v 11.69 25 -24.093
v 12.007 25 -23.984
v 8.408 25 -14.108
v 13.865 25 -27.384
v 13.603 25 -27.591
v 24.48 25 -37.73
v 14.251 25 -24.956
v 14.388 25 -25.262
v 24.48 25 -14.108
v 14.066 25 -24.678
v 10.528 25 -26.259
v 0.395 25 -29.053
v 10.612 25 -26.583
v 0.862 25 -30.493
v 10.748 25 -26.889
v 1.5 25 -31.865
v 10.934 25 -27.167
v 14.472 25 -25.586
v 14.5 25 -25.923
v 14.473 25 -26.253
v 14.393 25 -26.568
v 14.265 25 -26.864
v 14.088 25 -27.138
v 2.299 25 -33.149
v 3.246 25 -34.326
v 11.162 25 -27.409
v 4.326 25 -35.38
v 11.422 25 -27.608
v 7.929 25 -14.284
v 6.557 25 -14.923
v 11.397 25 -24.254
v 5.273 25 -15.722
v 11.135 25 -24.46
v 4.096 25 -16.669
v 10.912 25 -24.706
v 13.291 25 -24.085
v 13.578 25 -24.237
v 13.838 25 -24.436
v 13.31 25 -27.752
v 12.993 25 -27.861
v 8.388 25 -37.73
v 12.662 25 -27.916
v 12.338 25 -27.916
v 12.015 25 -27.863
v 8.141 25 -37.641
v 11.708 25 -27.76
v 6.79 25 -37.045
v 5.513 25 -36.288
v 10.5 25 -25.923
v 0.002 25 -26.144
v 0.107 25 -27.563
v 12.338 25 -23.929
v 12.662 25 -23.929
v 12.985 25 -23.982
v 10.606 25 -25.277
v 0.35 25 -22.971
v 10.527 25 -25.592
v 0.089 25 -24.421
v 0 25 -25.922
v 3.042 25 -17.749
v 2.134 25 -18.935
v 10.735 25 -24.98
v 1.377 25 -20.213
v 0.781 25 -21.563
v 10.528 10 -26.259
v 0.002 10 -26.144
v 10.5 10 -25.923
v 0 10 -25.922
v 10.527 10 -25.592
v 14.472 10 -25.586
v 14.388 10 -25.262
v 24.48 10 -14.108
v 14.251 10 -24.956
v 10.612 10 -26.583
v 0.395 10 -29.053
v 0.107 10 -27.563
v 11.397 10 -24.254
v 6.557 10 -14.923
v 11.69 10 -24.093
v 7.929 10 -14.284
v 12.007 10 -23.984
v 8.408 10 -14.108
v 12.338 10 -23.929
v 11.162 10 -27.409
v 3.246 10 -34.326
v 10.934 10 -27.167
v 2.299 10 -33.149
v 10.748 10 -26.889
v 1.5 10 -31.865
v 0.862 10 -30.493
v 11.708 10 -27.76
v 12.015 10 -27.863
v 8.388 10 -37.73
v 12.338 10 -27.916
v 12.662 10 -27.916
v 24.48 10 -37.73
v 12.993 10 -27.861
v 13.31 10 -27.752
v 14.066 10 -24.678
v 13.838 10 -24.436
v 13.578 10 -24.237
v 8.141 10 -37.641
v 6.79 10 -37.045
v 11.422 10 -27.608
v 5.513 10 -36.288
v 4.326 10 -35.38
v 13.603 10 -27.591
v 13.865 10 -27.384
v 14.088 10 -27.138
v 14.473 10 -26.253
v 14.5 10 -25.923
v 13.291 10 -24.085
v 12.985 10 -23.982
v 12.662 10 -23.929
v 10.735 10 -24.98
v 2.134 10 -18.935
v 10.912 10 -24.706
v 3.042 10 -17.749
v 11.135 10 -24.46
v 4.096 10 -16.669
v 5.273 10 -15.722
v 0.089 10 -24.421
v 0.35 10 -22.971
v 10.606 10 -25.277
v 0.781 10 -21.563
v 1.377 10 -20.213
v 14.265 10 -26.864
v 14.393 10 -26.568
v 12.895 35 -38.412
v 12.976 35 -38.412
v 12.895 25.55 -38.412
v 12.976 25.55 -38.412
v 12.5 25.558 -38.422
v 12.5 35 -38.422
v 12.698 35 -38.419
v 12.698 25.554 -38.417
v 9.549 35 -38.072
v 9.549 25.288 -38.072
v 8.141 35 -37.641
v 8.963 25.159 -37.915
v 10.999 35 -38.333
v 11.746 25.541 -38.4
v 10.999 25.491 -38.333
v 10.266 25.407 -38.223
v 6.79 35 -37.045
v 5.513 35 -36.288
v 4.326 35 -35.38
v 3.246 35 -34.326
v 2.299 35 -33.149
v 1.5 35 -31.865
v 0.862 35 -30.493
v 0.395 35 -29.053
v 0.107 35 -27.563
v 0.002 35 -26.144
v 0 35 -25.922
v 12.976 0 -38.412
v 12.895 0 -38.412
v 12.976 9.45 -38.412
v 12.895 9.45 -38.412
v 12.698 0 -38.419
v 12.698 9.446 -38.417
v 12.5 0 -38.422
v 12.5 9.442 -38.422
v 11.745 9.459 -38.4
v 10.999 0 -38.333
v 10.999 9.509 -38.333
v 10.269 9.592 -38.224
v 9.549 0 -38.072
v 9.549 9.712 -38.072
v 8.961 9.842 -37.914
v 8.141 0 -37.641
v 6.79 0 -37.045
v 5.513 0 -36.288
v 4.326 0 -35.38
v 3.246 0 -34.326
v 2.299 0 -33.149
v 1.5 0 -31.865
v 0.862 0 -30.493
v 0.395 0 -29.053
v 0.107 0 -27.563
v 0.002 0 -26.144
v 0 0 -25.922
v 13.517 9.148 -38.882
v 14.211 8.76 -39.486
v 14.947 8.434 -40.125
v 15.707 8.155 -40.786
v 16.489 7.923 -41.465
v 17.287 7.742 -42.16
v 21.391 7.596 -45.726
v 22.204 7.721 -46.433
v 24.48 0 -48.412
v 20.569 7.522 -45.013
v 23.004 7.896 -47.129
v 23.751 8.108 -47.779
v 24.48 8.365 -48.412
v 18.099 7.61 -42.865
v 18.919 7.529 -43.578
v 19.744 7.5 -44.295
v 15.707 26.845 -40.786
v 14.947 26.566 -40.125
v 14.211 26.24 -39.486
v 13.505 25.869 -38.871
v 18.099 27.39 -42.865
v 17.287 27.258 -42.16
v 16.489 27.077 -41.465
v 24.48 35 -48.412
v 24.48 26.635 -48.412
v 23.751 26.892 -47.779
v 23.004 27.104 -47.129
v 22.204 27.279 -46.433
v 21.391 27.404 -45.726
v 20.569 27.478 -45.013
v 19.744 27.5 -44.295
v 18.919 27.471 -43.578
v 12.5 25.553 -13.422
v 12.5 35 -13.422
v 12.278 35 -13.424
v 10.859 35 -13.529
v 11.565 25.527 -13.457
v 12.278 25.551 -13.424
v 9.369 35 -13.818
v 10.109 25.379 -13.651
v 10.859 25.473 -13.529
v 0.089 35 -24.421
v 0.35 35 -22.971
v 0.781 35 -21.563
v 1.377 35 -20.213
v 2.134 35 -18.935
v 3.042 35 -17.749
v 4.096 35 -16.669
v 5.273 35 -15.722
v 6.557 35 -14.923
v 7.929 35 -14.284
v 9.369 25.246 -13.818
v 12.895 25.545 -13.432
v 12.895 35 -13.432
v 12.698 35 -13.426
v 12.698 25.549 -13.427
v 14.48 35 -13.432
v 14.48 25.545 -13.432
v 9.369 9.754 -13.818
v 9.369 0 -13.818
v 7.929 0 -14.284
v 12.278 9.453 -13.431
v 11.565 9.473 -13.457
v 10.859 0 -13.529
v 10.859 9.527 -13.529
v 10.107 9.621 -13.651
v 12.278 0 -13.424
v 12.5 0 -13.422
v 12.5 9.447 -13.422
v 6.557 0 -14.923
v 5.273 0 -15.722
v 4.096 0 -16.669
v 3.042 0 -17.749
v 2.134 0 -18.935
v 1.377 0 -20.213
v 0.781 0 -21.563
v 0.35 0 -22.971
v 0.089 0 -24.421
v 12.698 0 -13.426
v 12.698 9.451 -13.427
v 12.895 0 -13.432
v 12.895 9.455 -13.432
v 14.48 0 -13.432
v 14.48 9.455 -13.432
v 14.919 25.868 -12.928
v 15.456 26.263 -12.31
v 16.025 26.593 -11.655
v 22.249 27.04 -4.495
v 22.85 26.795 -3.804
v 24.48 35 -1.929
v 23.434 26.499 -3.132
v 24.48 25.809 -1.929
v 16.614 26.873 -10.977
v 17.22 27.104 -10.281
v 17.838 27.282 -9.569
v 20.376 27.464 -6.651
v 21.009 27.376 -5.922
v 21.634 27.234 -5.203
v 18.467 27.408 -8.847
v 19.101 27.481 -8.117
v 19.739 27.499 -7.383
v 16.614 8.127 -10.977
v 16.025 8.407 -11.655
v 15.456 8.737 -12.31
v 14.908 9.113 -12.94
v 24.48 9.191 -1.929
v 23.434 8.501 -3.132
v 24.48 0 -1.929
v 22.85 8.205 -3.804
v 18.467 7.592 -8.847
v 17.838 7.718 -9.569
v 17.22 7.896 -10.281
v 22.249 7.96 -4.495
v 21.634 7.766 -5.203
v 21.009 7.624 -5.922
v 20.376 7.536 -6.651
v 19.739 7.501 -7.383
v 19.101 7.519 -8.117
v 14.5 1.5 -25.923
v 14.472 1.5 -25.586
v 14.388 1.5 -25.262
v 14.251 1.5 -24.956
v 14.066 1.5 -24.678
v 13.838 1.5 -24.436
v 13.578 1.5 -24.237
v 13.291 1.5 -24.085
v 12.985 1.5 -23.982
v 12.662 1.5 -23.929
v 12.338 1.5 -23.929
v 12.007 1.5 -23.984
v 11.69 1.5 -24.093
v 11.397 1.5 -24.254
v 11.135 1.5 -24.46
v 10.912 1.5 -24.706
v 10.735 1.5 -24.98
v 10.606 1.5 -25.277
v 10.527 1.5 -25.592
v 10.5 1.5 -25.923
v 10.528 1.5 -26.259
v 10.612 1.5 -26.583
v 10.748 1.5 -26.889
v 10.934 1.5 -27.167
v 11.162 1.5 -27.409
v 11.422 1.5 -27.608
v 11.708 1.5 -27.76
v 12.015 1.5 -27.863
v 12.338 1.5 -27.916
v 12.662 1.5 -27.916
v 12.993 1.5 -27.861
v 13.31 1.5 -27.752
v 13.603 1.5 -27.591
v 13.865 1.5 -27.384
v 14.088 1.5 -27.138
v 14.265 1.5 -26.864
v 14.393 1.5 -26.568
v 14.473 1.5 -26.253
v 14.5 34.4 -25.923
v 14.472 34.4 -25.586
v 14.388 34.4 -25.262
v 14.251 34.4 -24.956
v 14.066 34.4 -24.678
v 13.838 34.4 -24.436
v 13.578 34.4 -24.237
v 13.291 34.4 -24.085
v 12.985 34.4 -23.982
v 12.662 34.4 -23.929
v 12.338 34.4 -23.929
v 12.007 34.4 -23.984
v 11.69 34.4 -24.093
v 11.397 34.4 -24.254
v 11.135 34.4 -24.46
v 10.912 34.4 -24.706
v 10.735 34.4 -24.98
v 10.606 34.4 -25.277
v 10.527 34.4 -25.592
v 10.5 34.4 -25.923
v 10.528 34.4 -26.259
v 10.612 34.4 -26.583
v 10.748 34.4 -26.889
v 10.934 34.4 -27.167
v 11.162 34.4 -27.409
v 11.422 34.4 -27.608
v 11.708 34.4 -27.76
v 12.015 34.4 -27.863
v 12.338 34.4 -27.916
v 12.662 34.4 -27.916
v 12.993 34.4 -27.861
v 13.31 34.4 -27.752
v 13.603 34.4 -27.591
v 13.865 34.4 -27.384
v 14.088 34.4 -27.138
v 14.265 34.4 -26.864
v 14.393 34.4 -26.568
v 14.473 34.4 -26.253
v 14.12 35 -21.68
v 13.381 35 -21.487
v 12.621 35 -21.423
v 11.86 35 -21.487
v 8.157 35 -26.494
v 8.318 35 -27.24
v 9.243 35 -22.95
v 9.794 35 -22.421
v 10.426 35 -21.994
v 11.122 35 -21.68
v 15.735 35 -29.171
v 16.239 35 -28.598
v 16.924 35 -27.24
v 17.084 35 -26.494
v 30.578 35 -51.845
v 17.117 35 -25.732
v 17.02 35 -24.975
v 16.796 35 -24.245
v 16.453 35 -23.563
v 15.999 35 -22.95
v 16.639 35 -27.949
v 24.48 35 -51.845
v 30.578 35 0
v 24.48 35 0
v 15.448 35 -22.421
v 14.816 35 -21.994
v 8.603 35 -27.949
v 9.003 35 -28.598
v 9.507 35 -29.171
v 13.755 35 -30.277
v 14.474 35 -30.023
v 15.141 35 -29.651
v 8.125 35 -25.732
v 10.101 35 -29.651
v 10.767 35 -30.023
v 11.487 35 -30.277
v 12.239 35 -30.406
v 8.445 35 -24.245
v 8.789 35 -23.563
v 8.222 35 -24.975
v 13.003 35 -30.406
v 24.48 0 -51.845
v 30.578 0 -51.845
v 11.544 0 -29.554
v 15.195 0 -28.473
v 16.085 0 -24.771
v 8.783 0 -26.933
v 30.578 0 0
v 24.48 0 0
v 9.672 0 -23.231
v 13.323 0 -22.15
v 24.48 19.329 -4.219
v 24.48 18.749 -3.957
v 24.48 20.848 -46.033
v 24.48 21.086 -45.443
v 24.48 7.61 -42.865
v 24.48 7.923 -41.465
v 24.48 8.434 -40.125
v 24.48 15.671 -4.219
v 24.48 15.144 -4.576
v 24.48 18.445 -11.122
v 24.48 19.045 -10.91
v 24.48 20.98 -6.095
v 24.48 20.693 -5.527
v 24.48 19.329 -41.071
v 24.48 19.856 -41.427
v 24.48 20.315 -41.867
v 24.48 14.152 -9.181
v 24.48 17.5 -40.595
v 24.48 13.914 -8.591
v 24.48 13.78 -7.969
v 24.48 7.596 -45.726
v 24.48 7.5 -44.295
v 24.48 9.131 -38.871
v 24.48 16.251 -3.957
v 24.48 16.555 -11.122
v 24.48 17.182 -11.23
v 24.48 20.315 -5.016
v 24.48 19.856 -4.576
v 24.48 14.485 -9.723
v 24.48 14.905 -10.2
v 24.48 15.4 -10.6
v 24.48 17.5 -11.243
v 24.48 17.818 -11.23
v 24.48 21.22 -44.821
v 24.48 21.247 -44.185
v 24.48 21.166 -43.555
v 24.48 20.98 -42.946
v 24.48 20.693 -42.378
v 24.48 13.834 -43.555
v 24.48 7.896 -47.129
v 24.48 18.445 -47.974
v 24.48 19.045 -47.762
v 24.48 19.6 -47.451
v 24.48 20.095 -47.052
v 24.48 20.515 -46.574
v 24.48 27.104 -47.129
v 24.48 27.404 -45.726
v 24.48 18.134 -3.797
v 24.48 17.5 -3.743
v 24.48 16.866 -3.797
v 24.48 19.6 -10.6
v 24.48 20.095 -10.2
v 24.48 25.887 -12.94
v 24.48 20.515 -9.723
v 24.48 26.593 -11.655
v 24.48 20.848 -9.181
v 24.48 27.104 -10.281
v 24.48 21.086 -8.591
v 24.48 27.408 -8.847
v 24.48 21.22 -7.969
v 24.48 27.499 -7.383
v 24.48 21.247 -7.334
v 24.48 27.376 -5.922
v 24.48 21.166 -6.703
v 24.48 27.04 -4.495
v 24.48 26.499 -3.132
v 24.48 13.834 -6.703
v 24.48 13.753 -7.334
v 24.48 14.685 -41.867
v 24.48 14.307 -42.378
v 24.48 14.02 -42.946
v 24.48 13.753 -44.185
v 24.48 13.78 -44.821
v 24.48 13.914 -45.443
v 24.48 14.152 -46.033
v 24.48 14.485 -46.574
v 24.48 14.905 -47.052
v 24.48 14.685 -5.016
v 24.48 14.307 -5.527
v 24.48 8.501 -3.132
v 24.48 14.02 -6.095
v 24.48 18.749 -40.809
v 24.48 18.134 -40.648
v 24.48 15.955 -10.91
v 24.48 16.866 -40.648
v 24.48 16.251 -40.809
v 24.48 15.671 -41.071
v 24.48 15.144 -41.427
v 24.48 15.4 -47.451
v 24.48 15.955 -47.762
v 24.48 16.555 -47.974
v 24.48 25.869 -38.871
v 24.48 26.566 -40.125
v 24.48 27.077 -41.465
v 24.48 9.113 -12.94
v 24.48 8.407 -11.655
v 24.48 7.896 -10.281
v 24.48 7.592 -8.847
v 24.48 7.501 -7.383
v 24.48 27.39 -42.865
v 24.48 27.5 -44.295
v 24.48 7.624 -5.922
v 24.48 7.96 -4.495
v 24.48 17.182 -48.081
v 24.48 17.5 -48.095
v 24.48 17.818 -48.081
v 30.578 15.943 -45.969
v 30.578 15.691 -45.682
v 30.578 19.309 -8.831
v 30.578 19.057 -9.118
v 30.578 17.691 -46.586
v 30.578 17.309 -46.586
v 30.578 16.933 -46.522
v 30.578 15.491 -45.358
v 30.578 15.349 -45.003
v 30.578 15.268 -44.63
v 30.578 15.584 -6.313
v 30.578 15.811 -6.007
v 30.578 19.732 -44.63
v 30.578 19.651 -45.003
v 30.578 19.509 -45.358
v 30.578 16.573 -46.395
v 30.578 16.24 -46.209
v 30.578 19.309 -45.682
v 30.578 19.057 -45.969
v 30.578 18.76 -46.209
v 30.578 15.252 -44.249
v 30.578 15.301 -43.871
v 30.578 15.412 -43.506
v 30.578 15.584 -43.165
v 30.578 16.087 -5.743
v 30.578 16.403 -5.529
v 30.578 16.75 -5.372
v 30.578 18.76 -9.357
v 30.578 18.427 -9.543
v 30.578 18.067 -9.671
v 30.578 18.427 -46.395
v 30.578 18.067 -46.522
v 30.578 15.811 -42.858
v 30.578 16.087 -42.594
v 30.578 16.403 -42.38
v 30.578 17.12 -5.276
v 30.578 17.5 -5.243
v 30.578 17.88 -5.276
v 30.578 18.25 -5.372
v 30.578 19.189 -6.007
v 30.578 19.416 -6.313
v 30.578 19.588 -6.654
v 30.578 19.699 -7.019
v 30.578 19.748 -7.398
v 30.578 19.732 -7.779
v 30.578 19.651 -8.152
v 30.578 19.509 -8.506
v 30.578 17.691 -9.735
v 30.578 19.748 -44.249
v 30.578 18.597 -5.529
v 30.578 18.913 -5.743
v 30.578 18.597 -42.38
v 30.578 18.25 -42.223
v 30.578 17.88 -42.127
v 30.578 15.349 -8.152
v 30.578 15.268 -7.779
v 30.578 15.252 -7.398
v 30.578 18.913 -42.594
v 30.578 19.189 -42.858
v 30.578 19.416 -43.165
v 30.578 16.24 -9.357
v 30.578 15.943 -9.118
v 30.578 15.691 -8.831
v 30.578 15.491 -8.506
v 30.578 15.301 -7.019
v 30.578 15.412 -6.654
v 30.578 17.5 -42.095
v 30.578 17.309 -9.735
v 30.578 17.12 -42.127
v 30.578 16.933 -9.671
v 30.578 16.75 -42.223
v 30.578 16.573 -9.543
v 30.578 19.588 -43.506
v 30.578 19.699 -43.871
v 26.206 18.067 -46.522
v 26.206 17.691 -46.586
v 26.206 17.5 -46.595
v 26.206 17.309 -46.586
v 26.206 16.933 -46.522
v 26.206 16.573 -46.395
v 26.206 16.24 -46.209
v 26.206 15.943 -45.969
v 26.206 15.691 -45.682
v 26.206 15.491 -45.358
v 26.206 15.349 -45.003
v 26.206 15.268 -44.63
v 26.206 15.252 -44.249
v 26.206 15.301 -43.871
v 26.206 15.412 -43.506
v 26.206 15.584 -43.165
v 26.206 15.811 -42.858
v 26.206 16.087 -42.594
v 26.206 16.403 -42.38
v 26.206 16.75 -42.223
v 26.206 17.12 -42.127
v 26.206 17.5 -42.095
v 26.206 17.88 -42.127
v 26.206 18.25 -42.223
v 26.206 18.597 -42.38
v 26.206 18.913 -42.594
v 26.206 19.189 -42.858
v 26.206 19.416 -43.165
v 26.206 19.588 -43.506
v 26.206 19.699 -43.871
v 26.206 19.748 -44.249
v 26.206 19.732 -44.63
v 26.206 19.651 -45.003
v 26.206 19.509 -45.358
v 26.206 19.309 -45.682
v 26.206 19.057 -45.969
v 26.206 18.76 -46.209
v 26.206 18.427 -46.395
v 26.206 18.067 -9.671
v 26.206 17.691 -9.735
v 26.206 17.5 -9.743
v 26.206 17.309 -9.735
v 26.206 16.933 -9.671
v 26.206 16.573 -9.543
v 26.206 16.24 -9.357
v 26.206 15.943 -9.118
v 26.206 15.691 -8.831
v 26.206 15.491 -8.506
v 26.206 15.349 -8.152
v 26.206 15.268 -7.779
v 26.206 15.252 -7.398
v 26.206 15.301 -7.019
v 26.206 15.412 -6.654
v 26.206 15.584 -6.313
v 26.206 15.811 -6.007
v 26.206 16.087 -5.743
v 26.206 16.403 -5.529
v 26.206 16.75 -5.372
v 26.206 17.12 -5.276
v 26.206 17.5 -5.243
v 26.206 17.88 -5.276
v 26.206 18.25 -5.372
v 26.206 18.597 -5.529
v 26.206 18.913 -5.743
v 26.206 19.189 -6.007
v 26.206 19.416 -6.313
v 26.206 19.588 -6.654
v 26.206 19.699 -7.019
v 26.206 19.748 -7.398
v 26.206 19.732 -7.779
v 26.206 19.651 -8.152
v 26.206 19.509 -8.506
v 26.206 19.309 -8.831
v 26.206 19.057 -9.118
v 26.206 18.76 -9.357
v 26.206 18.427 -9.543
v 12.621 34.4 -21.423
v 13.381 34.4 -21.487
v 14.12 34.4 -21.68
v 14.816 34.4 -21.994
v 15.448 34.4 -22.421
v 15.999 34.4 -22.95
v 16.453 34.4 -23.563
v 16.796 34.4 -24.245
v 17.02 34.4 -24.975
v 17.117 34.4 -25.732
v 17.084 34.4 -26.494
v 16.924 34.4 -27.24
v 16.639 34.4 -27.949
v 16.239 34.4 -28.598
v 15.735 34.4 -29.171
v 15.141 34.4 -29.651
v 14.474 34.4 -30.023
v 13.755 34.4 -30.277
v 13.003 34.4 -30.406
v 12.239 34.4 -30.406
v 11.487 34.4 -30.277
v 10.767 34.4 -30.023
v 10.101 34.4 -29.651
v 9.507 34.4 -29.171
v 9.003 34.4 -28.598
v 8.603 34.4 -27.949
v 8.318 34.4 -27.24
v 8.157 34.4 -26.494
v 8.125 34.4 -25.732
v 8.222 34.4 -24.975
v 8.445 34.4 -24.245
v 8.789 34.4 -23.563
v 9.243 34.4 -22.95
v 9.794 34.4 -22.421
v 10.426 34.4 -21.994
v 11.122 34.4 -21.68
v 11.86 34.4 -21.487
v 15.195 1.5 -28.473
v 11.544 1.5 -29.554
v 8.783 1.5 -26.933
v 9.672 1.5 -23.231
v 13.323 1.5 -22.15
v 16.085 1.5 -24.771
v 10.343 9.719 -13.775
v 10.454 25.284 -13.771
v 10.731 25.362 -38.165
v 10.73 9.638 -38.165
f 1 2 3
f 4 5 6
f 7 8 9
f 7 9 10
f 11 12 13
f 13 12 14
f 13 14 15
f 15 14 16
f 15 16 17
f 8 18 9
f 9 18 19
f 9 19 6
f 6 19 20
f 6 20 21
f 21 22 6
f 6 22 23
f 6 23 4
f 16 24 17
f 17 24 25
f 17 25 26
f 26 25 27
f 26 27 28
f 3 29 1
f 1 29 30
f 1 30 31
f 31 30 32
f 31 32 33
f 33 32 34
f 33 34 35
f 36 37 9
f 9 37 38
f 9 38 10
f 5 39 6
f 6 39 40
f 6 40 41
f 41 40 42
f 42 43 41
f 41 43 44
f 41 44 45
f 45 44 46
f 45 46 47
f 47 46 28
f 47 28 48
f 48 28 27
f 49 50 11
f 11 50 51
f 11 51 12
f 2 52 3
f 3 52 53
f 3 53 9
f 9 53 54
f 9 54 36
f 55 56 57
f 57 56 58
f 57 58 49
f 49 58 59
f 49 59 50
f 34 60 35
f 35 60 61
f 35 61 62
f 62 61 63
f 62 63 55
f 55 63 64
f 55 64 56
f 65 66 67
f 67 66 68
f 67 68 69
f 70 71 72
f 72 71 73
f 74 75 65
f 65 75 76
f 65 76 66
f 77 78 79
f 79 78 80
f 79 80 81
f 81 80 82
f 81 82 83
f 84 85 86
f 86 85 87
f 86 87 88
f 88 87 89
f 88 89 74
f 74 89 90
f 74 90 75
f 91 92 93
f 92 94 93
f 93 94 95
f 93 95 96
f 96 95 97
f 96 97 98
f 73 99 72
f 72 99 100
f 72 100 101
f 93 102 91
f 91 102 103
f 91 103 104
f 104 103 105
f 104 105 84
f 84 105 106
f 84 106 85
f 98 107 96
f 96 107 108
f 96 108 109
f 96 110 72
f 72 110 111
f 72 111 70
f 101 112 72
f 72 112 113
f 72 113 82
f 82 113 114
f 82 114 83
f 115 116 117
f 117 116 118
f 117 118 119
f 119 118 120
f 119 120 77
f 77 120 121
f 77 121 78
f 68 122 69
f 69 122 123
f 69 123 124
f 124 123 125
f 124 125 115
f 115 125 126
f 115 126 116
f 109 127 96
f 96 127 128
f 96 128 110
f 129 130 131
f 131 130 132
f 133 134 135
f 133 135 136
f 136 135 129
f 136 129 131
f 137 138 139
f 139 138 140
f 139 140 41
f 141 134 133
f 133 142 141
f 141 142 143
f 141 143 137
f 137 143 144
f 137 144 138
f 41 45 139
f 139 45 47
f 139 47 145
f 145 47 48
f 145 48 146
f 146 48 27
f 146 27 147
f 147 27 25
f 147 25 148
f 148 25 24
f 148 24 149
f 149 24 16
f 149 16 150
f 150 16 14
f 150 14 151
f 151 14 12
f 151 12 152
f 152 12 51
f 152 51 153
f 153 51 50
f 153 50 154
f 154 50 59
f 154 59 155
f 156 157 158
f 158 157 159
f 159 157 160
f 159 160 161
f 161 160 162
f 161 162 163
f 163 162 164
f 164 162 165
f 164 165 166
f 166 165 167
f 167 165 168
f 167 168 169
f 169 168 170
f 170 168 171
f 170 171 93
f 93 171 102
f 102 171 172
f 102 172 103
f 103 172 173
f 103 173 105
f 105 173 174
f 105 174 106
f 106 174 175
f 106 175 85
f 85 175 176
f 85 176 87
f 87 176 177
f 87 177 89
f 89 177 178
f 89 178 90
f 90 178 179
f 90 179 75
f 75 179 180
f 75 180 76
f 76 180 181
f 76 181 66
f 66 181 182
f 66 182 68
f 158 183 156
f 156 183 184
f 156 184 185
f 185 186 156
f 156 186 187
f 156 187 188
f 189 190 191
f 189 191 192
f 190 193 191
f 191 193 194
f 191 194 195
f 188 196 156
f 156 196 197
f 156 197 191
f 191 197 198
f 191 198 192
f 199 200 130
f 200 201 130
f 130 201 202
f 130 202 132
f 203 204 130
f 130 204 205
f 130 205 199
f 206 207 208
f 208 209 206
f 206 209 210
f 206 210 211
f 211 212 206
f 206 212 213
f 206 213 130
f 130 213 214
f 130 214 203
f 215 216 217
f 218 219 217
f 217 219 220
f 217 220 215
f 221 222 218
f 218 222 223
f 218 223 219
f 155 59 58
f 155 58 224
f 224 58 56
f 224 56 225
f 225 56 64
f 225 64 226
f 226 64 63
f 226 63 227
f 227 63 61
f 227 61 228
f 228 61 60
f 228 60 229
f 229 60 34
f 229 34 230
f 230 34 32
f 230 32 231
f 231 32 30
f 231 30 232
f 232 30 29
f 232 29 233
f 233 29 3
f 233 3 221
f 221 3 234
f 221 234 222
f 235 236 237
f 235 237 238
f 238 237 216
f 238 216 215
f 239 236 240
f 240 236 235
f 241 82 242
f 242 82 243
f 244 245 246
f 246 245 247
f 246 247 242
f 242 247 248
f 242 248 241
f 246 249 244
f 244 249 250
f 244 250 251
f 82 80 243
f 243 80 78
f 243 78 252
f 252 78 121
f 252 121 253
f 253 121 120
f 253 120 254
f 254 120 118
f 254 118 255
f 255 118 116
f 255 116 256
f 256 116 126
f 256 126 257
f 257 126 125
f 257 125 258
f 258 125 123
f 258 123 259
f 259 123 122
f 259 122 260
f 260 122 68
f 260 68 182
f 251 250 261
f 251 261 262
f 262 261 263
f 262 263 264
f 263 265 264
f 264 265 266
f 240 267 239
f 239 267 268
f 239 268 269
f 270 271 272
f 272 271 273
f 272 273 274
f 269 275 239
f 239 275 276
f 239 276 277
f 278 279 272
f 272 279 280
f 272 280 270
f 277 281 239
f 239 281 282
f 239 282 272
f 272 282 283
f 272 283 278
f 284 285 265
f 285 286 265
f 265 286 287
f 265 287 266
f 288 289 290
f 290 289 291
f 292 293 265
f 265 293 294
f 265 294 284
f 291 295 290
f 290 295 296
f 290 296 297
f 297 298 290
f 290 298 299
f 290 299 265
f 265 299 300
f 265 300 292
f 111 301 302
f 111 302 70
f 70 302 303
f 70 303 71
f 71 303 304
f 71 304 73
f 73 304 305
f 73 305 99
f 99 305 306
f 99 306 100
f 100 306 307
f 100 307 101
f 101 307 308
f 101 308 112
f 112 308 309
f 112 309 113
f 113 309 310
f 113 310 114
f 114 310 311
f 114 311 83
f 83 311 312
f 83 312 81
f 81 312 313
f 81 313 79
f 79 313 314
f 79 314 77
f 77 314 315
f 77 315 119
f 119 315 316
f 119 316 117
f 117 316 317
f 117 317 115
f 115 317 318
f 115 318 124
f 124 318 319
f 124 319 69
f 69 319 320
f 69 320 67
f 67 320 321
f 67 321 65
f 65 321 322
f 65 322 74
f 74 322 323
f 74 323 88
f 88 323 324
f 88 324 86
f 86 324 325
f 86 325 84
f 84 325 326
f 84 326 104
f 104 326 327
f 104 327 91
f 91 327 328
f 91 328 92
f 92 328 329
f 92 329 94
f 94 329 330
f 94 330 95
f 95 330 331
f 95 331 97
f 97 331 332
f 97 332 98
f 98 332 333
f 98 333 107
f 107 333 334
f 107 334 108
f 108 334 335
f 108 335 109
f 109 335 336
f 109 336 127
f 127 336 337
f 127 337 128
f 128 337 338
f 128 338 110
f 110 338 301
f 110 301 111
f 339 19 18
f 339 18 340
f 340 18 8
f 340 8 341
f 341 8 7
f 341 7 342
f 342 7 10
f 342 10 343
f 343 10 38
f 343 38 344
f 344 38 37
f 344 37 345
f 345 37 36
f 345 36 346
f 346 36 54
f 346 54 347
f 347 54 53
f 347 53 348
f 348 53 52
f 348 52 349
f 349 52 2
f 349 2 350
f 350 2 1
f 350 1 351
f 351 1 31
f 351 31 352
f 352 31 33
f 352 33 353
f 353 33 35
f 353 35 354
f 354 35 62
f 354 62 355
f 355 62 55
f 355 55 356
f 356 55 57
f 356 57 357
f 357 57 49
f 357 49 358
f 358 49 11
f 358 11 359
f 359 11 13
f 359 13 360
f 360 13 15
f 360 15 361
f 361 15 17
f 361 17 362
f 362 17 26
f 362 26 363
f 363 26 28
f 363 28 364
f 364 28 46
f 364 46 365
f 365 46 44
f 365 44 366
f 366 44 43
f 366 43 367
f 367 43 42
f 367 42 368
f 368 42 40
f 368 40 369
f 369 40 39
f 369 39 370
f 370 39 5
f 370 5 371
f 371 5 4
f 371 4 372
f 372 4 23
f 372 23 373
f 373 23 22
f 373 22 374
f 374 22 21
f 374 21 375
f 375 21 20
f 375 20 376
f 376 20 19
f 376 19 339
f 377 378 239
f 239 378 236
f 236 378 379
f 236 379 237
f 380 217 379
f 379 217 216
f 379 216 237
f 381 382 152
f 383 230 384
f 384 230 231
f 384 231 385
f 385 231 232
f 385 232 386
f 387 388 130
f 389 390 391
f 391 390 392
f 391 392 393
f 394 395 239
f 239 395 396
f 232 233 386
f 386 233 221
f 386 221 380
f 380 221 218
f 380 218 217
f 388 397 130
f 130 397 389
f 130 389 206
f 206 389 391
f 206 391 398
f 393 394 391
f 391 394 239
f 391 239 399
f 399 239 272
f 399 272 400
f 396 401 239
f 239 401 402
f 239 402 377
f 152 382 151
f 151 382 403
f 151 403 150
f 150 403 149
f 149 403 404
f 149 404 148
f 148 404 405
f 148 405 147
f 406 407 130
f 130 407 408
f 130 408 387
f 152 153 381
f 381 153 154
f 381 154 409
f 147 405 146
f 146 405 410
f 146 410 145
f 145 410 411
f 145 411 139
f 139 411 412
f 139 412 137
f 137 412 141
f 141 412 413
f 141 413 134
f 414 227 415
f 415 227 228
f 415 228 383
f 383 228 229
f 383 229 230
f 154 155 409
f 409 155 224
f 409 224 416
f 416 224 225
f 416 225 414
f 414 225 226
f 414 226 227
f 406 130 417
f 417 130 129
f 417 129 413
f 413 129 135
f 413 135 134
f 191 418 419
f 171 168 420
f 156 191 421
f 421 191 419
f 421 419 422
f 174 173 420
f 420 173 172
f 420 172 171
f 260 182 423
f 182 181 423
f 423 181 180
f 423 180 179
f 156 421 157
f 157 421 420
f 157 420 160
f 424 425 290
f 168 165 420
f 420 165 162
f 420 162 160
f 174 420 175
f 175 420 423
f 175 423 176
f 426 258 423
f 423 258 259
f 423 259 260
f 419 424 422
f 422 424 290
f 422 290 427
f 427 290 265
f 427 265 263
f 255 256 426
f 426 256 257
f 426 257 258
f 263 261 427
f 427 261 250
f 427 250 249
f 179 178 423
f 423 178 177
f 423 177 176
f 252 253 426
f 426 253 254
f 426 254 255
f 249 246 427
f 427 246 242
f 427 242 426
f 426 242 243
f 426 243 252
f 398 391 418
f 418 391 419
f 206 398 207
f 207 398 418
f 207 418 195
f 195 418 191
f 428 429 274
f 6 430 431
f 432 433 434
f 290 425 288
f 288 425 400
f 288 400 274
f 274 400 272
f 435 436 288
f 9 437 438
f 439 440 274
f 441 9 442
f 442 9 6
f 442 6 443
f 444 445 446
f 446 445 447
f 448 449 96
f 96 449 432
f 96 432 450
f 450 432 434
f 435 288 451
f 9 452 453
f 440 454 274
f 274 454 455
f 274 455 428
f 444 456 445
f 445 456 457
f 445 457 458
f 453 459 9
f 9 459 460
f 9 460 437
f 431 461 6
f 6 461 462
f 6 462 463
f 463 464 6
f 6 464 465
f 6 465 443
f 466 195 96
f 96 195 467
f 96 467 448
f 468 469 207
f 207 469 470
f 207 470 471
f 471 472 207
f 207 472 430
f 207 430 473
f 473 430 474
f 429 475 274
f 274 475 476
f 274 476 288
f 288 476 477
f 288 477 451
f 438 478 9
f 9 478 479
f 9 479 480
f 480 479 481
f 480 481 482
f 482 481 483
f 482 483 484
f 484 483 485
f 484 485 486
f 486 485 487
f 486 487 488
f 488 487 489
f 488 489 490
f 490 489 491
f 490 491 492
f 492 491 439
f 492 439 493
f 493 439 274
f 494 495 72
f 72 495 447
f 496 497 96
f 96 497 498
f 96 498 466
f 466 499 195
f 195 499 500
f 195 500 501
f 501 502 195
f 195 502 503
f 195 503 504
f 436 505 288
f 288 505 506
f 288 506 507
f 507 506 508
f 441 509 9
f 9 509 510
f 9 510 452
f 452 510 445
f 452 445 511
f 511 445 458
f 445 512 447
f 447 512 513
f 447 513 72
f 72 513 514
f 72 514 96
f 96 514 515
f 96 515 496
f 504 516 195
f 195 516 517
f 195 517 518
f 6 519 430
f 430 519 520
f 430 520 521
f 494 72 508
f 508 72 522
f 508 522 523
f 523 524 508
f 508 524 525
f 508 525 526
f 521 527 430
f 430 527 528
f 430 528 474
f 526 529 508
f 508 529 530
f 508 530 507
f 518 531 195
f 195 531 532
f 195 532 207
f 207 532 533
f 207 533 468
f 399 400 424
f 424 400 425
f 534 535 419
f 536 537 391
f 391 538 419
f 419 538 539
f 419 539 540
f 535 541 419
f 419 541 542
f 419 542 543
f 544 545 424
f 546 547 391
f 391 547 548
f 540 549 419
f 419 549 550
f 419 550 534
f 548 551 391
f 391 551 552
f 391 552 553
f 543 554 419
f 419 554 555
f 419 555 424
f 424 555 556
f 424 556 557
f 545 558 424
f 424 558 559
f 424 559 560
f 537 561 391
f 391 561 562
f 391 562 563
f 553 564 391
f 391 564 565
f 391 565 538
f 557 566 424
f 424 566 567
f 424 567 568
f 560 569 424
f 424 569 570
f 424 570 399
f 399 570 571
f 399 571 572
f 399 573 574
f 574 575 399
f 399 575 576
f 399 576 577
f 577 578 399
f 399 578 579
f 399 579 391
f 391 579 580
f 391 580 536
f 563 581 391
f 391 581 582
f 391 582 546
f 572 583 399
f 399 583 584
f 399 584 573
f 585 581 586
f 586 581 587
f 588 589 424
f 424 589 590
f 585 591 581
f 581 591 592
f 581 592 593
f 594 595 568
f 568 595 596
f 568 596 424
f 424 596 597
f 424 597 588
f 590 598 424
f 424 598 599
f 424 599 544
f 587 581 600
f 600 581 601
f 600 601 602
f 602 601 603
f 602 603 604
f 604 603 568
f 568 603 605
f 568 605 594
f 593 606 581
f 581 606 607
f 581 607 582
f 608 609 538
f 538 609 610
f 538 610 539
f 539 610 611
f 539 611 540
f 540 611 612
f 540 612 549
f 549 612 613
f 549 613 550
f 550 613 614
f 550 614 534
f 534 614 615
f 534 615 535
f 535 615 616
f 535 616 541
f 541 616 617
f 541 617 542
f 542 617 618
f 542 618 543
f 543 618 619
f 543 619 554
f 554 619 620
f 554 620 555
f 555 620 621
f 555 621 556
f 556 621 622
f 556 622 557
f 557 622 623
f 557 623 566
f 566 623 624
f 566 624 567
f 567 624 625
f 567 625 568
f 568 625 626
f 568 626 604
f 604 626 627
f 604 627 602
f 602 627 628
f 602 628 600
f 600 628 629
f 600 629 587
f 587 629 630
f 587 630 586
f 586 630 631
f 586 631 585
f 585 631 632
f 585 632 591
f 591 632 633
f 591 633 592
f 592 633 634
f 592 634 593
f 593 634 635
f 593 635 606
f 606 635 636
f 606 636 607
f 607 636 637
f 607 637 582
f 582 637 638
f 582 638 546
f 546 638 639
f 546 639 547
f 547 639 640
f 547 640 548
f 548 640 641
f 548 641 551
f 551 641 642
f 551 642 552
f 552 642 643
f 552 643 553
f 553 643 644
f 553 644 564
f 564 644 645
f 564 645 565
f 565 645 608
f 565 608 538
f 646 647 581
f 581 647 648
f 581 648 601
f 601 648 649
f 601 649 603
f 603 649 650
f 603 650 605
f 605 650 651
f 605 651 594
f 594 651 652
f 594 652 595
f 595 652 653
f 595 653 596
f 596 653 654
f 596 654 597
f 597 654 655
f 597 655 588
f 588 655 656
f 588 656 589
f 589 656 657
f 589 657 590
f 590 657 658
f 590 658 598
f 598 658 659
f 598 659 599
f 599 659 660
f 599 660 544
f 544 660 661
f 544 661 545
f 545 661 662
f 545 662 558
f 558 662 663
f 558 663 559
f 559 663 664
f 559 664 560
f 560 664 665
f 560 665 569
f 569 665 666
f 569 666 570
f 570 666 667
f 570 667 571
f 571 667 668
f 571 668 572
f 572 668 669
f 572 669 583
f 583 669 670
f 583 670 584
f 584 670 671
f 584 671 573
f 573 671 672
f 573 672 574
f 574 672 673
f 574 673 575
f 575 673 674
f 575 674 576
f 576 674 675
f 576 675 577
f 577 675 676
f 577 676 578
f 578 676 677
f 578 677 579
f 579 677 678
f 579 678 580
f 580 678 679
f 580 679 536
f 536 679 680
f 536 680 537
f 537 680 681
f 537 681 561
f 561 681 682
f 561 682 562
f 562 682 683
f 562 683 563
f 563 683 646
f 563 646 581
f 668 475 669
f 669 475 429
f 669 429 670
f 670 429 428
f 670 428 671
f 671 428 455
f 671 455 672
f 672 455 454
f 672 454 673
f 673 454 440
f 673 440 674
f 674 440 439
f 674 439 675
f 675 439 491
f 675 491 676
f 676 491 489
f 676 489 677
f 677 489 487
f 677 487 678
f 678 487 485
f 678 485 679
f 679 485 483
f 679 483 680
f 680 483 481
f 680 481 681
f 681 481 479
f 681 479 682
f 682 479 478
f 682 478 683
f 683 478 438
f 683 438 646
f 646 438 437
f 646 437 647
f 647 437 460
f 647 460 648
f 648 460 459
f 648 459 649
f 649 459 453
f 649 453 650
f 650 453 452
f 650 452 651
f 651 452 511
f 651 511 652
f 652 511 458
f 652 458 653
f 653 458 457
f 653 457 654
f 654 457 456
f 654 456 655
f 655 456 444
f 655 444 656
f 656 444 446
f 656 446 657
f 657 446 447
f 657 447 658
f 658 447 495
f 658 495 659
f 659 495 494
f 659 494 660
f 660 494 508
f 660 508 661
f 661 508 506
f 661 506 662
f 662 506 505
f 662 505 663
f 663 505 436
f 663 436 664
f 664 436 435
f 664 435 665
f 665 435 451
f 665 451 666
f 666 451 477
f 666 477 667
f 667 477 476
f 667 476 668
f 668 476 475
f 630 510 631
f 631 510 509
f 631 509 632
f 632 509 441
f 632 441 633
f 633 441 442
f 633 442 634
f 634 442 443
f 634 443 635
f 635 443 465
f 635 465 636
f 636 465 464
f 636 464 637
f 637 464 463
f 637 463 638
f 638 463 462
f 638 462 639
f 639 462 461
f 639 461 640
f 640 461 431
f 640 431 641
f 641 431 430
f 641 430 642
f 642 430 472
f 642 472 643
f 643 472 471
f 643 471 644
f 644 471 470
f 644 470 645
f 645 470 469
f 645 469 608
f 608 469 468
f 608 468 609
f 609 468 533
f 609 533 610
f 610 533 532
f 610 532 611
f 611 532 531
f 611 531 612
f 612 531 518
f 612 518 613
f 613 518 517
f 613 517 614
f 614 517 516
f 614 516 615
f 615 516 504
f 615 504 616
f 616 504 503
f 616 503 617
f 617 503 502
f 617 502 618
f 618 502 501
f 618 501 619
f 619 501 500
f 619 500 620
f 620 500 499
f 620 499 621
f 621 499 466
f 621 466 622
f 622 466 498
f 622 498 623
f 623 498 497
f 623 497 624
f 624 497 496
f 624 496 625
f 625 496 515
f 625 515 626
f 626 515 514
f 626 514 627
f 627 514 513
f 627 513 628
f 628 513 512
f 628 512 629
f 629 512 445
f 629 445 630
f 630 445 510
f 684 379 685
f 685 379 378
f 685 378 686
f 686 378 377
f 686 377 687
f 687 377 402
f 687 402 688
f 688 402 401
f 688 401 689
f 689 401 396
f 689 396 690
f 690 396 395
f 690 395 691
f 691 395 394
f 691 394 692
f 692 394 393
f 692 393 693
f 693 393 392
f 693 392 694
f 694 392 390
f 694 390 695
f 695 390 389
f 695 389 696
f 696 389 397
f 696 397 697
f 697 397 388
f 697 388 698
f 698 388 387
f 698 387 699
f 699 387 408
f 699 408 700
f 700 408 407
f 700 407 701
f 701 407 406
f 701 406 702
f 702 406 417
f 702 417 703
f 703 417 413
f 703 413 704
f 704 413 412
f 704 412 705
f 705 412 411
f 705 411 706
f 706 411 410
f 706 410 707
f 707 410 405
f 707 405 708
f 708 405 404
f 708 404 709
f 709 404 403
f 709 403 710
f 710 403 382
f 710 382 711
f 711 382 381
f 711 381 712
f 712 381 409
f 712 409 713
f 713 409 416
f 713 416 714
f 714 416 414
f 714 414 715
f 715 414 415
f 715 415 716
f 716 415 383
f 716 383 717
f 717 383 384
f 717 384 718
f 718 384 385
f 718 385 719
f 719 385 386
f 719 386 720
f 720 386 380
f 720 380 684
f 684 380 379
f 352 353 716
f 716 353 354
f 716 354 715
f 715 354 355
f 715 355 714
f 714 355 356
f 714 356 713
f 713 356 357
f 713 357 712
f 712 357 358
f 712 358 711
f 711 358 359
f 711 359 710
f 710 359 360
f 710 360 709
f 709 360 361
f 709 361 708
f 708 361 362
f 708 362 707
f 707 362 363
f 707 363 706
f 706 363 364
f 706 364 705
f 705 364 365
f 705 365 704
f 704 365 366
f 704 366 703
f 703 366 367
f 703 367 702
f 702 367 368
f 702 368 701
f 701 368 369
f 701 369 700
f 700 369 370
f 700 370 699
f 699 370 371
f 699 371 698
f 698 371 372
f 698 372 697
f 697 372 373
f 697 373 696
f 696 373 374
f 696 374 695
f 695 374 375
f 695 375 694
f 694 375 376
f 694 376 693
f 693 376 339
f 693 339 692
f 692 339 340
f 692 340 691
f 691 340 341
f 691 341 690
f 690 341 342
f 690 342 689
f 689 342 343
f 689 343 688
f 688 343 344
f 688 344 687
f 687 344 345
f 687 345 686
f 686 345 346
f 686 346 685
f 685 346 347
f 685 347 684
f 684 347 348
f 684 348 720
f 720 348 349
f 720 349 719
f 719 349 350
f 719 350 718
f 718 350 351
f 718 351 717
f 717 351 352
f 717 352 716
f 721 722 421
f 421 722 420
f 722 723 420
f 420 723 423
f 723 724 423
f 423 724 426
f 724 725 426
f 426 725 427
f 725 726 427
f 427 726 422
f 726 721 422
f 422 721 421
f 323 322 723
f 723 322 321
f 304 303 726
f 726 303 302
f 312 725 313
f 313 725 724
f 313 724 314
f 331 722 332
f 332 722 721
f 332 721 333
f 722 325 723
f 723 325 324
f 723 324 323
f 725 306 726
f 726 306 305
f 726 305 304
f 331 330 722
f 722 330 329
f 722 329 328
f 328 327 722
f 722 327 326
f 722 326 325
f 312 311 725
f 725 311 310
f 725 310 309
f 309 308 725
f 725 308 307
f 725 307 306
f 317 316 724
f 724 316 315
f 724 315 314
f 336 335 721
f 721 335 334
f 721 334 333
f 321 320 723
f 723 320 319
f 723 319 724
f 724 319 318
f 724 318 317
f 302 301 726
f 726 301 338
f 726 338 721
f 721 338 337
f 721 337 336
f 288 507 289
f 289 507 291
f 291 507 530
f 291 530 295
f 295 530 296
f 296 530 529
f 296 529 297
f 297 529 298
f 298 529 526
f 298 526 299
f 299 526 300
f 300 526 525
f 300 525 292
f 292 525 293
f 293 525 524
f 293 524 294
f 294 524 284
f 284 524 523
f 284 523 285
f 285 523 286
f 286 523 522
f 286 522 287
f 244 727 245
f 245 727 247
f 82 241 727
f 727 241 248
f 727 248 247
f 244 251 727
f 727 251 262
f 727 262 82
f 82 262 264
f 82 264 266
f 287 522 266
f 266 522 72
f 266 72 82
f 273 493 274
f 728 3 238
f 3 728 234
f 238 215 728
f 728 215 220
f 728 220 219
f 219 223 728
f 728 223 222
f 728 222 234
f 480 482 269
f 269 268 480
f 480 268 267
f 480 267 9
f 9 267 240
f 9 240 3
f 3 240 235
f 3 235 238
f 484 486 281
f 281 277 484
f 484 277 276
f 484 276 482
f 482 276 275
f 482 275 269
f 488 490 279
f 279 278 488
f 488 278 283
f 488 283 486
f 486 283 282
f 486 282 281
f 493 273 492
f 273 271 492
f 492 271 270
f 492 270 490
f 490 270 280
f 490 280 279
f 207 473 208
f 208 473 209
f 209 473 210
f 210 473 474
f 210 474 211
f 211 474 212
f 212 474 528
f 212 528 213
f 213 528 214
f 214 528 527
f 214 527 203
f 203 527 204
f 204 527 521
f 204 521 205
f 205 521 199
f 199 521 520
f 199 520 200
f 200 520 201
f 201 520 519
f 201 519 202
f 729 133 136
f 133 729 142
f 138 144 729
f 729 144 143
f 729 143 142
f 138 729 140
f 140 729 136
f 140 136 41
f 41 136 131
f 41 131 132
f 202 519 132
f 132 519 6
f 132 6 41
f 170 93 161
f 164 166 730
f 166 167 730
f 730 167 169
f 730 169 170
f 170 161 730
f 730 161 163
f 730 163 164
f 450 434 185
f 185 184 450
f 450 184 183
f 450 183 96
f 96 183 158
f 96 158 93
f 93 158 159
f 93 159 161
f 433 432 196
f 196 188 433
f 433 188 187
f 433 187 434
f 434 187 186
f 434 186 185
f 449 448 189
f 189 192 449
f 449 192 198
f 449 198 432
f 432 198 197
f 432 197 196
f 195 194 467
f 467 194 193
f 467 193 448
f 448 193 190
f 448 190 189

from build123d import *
from OCP.BRepFilletAPI import BRepFilletAPI_MakeChamfer

# Parameters (mm, degrees)
BOSS_EXTRUDE1_DEPTH     = 35
CUT_EXTRUDE1_DEPTH      = 35
CUT_EXTRUDE1_DEPTH_BACK = 35
SKETCH2_W               = 12.895164656
SKETCH2_H               = 15
SKETCH2_W_2             = 11.584994843
CHAMFER1_SIZE           = 10
CHAMFER1_SIZE2          = 11.503684072
SKETCH3_R               = 2.25
CUT_EXTRUDE2_DEPTH      = 68.172434084
CHAMFER2_SIZE           = 1.5
CHAMFER2_SIZE2          = 1.725552611
SKETCH5_R               = 4.5
CUT_EXTRUDE3_DEPTH      = 0.6
CUT_EXTRUDE4_DEPTH      = 1.5
SKETCH9_R               = 10
CUT_EXTRUDE5_DEPTH      = 35


with BuildPart() as part:
    # Sketch1 → Boss-Extrude1 (new body)
    with BuildSketch(Plane(origin=(0, 0, 0), x_dir=(1, 0, 0), z_dir=(0, 1, 0))):
        with BuildLine():
            Line((30.577978508, 38.412125641), (30.577978508, 51.844552938))
            Line((30.577978508, 51.844552938), (24.480159499, 51.844552938))
            Line((24.480159499, 51.844552938), (24.480159499, 38.412125641))
            Line((24.480159499, 38.412125641), (12.895164656, 38.412125641))
            add(Edge.make_bspline(
                [(12.895164656, 38.412125641), (12.763562009, 38.416259756), (12.632476125, 38.422116418), (12.499839949, 38.422116418)],
                knots=[4, 4, 4, 4, 5, 5, 5, 5], degree=3))
            add(Edge.make_bspline(
                [(12.499839949, 38.422116418), (5.596213106, 38.422116418), (0, 32.825903312), (0, 25.922276469)],
                knots=[5, 5, 5, 5, 6, 6, 6, 6], degree=3))
            add(Edge.make_bspline(
                [(0, 25.922276469), (0, 19.018649626), (5.596213106, 13.42243652), (12.499839949, 13.42243652)],
                knots=[6, 6, 6, 6, 7, 7, 7, 7], degree=3))
            add(Edge.make_bspline(
                [(12.499839949, 13.42243652), (12.632476125, 13.42243652), (12.763562009, 13.428293182), (12.895164656, 13.432427297)],
                knots=[7, 7, 7, 7, 8, 8, 8, 8], degree=3))
            Line((12.895164656, 13.432427297), (24.480159499, 13.432427297))
            Line((24.480159499, 13.432427297), (24.480159499, 0))
            Line((24.480159499, 0), (30.577978508, 0))
            Line((30.577978508, 0), (30.577978508, 13.432427297))
            Line((30.577978508, 13.432427297), (30.577978508, 38.412125641))
        make_face()
        with BuildLine():
            add(Edge.make_bspline(
                [(10.49996202, 25.922620979), (10.49996202, 27.027118591), (11.395342337, 27.922498908), (12.500012204, 27.922498908), (13.604509816, 27.922498908), (14.499890133, 27.027118591), (14.499890133, 25.922620979)],
                knots=[2, 2, 2, 2, 3, 3, 3, 4, 4, 4, 4], degree=3))
            add(Edge.make_bspline(
                [(14.499890133, 25.922620979), (14.499890133, 24.817778857), (13.604509816, 23.92239854), (12.500012204, 23.92239854), (11.395342337, 23.92239854), (10.49996202, 24.817778857), (10.49996202, 25.922620979)],
                knots=[0, 0, 0, 0, 1, 1, 1, 2, 2, 2, 2], degree=3))
        make_face(mode=Mode.SUBTRACT)
    extrude(amount=BOSS_EXTRUDE1_DEPTH)

    # Sketch2 → Cut-Extrude1 (cut, two sides: drawn at the far end of the back side and taken through both)
    with BuildSketch(Plane.XY.offset(-13.432427297).offset(-CUT_EXTRUDE1_DEPTH_BACK)):
        with Locations((6.447582328, 17.5)):
            Rectangle(SKETCH2_W, SKETCH2_H)
        with Locations((18.687662078, 17.5)):
            Rectangle(SKETCH2_W_2, SKETCH2_H)
    extrude(amount=CUT_EXTRUDE1_DEPTH + CUT_EXTRUDE1_DEPTH_BACK, mode=Mode.SUBTRACT)

    # Chamfer1: one chamfer whose edges measure the first distance from different faces: ONE call of the kernel's chamfer builder (chamfer() names one face for all edges)
    chamfer1_edges_1 = [part.edges().sort_by_distance(p)[0] for p in [
        (24.480159499, 30, -13.432427297),
    ]]
    chamfer1_side_1 = [part.faces().sort_by_distance(p)[0] for p in [
        (18.687662078, 30, -13.432427297),
    ]]
    chamfer1_edges_2 = [part.edges().sort_by_distance(p)[0] for p in [
        (24.480159499, 30, -38.412125641),
        (24.480159499, 5, -38.412125641),
    ]]
    chamfer1_side_2 = [part.faces().sort_by_distance(p)[0] for p in [
        (24.480159499, 17.5, -25.922276469),
    ]]
    chamfer1_edges_3 = [part.edges().sort_by_distance(p)[0] for p in [
        (24.480159499, 5, -13.432427297),
    ]]
    chamfer1_side_3 = [part.faces().sort_by_distance(p)[0] for p in [
        (18.687662078, 5, -13.432427297),
    ]]
    chamfer1 = BRepFilletAPI_MakeChamfer(part.part.solid().wrapped)
    for e in chamfer1_edges_1:
        chamfer1.Add(CHAMFER1_SIZE, CHAMFER1_SIZE2, e.wrapped, chamfer1_side_1[0].wrapped)  # the first distance lies on this face
    for e in chamfer1_edges_2:
        chamfer1.Add(CHAMFER1_SIZE, CHAMFER1_SIZE2, e.wrapped, chamfer1_side_2[0].wrapped)  # the first distance lies on this face
    for e in chamfer1_edges_3:
        chamfer1.Add(CHAMFER1_SIZE, CHAMFER1_SIZE2, e.wrapped, chamfer1_side_3[0].wrapped)  # the first distance lies on this face
    add(Compound.cast(chamfer1.Shape()), mode=Mode.REPLACE)

    # Sketch3 → Cut-Extrude2 (cut, through all)
    with BuildSketch(Plane.ZY.offset(-24.480159499)):
        with Locations((-44.344552938, 17.5)):
            Circle(SKETCH3_R)
        with Locations((-7.49316056, 17.5)):
            Circle(SKETCH3_R)
    extrude(amount=-CUT_EXTRUDE2_DEPTH, mode=Mode.SUBTRACT)

    # Chamfer2
    chamfer2_edges = [part.edges().sort_by_distance(p)[0] for p in [
        (24.480159499, 17.5, -46.594552938),
        (24.480159499, 17.5, -9.74316056),
    ]]
    chamfer2_side = [part.faces().sort_by_distance(p)[0] for p in [
        (24.480159499, 17.5, -26.741741785),
    ]]
    chamfer(chamfer2_edges, length=CHAMFER2_SIZE, length2=CHAMFER2_SIZE2, reference=chamfer2_side[0])

    # Sketch5 → Cut-Extrude3 (cut)
    with BuildSketch(Plane(origin=(0, 35, 0), x_dir=(1, 0, 0), z_dir=(0, 1, 0))):
        with Locations(Location((12.620921734, 25.922620979, 0), (0, 0, 270))):
            Circle(SKETCH5_R)
    extrude(amount=-CUT_EXTRUDE3_DEPTH, mode=Mode.SUBTRACT)

    # Sketch8 → Cut-Extrude4 (cut)
    with BuildSketch(Plane.XZ):
        Polygon((15.19537285, -28.473323484), (16.084608047, -24.771005389), (13.322924122, -22.149746071), (9.672005001, -23.230804848), (8.782769803, -26.933122943), (11.544453728, -29.554382261), align=None)
    extrude(amount=-CUT_EXTRUDE4_DEPTH, mode=Mode.SUBTRACT)

    # Sketch9 → Cut-Extrude5 (cut)
    with BuildSketch(Plane.ZY.offset(-24.480159499)):
        with Locations((-7.49316056, 17.5)):
            Circle(SKETCH9_R)
        with Locations((-44.344552938, 17.5)):
            Circle(SKETCH9_R)
    extrude(amount=CUT_EXTRUDE5_DEPTH, mode=Mode.SUBTRACT)


solid = part.part
